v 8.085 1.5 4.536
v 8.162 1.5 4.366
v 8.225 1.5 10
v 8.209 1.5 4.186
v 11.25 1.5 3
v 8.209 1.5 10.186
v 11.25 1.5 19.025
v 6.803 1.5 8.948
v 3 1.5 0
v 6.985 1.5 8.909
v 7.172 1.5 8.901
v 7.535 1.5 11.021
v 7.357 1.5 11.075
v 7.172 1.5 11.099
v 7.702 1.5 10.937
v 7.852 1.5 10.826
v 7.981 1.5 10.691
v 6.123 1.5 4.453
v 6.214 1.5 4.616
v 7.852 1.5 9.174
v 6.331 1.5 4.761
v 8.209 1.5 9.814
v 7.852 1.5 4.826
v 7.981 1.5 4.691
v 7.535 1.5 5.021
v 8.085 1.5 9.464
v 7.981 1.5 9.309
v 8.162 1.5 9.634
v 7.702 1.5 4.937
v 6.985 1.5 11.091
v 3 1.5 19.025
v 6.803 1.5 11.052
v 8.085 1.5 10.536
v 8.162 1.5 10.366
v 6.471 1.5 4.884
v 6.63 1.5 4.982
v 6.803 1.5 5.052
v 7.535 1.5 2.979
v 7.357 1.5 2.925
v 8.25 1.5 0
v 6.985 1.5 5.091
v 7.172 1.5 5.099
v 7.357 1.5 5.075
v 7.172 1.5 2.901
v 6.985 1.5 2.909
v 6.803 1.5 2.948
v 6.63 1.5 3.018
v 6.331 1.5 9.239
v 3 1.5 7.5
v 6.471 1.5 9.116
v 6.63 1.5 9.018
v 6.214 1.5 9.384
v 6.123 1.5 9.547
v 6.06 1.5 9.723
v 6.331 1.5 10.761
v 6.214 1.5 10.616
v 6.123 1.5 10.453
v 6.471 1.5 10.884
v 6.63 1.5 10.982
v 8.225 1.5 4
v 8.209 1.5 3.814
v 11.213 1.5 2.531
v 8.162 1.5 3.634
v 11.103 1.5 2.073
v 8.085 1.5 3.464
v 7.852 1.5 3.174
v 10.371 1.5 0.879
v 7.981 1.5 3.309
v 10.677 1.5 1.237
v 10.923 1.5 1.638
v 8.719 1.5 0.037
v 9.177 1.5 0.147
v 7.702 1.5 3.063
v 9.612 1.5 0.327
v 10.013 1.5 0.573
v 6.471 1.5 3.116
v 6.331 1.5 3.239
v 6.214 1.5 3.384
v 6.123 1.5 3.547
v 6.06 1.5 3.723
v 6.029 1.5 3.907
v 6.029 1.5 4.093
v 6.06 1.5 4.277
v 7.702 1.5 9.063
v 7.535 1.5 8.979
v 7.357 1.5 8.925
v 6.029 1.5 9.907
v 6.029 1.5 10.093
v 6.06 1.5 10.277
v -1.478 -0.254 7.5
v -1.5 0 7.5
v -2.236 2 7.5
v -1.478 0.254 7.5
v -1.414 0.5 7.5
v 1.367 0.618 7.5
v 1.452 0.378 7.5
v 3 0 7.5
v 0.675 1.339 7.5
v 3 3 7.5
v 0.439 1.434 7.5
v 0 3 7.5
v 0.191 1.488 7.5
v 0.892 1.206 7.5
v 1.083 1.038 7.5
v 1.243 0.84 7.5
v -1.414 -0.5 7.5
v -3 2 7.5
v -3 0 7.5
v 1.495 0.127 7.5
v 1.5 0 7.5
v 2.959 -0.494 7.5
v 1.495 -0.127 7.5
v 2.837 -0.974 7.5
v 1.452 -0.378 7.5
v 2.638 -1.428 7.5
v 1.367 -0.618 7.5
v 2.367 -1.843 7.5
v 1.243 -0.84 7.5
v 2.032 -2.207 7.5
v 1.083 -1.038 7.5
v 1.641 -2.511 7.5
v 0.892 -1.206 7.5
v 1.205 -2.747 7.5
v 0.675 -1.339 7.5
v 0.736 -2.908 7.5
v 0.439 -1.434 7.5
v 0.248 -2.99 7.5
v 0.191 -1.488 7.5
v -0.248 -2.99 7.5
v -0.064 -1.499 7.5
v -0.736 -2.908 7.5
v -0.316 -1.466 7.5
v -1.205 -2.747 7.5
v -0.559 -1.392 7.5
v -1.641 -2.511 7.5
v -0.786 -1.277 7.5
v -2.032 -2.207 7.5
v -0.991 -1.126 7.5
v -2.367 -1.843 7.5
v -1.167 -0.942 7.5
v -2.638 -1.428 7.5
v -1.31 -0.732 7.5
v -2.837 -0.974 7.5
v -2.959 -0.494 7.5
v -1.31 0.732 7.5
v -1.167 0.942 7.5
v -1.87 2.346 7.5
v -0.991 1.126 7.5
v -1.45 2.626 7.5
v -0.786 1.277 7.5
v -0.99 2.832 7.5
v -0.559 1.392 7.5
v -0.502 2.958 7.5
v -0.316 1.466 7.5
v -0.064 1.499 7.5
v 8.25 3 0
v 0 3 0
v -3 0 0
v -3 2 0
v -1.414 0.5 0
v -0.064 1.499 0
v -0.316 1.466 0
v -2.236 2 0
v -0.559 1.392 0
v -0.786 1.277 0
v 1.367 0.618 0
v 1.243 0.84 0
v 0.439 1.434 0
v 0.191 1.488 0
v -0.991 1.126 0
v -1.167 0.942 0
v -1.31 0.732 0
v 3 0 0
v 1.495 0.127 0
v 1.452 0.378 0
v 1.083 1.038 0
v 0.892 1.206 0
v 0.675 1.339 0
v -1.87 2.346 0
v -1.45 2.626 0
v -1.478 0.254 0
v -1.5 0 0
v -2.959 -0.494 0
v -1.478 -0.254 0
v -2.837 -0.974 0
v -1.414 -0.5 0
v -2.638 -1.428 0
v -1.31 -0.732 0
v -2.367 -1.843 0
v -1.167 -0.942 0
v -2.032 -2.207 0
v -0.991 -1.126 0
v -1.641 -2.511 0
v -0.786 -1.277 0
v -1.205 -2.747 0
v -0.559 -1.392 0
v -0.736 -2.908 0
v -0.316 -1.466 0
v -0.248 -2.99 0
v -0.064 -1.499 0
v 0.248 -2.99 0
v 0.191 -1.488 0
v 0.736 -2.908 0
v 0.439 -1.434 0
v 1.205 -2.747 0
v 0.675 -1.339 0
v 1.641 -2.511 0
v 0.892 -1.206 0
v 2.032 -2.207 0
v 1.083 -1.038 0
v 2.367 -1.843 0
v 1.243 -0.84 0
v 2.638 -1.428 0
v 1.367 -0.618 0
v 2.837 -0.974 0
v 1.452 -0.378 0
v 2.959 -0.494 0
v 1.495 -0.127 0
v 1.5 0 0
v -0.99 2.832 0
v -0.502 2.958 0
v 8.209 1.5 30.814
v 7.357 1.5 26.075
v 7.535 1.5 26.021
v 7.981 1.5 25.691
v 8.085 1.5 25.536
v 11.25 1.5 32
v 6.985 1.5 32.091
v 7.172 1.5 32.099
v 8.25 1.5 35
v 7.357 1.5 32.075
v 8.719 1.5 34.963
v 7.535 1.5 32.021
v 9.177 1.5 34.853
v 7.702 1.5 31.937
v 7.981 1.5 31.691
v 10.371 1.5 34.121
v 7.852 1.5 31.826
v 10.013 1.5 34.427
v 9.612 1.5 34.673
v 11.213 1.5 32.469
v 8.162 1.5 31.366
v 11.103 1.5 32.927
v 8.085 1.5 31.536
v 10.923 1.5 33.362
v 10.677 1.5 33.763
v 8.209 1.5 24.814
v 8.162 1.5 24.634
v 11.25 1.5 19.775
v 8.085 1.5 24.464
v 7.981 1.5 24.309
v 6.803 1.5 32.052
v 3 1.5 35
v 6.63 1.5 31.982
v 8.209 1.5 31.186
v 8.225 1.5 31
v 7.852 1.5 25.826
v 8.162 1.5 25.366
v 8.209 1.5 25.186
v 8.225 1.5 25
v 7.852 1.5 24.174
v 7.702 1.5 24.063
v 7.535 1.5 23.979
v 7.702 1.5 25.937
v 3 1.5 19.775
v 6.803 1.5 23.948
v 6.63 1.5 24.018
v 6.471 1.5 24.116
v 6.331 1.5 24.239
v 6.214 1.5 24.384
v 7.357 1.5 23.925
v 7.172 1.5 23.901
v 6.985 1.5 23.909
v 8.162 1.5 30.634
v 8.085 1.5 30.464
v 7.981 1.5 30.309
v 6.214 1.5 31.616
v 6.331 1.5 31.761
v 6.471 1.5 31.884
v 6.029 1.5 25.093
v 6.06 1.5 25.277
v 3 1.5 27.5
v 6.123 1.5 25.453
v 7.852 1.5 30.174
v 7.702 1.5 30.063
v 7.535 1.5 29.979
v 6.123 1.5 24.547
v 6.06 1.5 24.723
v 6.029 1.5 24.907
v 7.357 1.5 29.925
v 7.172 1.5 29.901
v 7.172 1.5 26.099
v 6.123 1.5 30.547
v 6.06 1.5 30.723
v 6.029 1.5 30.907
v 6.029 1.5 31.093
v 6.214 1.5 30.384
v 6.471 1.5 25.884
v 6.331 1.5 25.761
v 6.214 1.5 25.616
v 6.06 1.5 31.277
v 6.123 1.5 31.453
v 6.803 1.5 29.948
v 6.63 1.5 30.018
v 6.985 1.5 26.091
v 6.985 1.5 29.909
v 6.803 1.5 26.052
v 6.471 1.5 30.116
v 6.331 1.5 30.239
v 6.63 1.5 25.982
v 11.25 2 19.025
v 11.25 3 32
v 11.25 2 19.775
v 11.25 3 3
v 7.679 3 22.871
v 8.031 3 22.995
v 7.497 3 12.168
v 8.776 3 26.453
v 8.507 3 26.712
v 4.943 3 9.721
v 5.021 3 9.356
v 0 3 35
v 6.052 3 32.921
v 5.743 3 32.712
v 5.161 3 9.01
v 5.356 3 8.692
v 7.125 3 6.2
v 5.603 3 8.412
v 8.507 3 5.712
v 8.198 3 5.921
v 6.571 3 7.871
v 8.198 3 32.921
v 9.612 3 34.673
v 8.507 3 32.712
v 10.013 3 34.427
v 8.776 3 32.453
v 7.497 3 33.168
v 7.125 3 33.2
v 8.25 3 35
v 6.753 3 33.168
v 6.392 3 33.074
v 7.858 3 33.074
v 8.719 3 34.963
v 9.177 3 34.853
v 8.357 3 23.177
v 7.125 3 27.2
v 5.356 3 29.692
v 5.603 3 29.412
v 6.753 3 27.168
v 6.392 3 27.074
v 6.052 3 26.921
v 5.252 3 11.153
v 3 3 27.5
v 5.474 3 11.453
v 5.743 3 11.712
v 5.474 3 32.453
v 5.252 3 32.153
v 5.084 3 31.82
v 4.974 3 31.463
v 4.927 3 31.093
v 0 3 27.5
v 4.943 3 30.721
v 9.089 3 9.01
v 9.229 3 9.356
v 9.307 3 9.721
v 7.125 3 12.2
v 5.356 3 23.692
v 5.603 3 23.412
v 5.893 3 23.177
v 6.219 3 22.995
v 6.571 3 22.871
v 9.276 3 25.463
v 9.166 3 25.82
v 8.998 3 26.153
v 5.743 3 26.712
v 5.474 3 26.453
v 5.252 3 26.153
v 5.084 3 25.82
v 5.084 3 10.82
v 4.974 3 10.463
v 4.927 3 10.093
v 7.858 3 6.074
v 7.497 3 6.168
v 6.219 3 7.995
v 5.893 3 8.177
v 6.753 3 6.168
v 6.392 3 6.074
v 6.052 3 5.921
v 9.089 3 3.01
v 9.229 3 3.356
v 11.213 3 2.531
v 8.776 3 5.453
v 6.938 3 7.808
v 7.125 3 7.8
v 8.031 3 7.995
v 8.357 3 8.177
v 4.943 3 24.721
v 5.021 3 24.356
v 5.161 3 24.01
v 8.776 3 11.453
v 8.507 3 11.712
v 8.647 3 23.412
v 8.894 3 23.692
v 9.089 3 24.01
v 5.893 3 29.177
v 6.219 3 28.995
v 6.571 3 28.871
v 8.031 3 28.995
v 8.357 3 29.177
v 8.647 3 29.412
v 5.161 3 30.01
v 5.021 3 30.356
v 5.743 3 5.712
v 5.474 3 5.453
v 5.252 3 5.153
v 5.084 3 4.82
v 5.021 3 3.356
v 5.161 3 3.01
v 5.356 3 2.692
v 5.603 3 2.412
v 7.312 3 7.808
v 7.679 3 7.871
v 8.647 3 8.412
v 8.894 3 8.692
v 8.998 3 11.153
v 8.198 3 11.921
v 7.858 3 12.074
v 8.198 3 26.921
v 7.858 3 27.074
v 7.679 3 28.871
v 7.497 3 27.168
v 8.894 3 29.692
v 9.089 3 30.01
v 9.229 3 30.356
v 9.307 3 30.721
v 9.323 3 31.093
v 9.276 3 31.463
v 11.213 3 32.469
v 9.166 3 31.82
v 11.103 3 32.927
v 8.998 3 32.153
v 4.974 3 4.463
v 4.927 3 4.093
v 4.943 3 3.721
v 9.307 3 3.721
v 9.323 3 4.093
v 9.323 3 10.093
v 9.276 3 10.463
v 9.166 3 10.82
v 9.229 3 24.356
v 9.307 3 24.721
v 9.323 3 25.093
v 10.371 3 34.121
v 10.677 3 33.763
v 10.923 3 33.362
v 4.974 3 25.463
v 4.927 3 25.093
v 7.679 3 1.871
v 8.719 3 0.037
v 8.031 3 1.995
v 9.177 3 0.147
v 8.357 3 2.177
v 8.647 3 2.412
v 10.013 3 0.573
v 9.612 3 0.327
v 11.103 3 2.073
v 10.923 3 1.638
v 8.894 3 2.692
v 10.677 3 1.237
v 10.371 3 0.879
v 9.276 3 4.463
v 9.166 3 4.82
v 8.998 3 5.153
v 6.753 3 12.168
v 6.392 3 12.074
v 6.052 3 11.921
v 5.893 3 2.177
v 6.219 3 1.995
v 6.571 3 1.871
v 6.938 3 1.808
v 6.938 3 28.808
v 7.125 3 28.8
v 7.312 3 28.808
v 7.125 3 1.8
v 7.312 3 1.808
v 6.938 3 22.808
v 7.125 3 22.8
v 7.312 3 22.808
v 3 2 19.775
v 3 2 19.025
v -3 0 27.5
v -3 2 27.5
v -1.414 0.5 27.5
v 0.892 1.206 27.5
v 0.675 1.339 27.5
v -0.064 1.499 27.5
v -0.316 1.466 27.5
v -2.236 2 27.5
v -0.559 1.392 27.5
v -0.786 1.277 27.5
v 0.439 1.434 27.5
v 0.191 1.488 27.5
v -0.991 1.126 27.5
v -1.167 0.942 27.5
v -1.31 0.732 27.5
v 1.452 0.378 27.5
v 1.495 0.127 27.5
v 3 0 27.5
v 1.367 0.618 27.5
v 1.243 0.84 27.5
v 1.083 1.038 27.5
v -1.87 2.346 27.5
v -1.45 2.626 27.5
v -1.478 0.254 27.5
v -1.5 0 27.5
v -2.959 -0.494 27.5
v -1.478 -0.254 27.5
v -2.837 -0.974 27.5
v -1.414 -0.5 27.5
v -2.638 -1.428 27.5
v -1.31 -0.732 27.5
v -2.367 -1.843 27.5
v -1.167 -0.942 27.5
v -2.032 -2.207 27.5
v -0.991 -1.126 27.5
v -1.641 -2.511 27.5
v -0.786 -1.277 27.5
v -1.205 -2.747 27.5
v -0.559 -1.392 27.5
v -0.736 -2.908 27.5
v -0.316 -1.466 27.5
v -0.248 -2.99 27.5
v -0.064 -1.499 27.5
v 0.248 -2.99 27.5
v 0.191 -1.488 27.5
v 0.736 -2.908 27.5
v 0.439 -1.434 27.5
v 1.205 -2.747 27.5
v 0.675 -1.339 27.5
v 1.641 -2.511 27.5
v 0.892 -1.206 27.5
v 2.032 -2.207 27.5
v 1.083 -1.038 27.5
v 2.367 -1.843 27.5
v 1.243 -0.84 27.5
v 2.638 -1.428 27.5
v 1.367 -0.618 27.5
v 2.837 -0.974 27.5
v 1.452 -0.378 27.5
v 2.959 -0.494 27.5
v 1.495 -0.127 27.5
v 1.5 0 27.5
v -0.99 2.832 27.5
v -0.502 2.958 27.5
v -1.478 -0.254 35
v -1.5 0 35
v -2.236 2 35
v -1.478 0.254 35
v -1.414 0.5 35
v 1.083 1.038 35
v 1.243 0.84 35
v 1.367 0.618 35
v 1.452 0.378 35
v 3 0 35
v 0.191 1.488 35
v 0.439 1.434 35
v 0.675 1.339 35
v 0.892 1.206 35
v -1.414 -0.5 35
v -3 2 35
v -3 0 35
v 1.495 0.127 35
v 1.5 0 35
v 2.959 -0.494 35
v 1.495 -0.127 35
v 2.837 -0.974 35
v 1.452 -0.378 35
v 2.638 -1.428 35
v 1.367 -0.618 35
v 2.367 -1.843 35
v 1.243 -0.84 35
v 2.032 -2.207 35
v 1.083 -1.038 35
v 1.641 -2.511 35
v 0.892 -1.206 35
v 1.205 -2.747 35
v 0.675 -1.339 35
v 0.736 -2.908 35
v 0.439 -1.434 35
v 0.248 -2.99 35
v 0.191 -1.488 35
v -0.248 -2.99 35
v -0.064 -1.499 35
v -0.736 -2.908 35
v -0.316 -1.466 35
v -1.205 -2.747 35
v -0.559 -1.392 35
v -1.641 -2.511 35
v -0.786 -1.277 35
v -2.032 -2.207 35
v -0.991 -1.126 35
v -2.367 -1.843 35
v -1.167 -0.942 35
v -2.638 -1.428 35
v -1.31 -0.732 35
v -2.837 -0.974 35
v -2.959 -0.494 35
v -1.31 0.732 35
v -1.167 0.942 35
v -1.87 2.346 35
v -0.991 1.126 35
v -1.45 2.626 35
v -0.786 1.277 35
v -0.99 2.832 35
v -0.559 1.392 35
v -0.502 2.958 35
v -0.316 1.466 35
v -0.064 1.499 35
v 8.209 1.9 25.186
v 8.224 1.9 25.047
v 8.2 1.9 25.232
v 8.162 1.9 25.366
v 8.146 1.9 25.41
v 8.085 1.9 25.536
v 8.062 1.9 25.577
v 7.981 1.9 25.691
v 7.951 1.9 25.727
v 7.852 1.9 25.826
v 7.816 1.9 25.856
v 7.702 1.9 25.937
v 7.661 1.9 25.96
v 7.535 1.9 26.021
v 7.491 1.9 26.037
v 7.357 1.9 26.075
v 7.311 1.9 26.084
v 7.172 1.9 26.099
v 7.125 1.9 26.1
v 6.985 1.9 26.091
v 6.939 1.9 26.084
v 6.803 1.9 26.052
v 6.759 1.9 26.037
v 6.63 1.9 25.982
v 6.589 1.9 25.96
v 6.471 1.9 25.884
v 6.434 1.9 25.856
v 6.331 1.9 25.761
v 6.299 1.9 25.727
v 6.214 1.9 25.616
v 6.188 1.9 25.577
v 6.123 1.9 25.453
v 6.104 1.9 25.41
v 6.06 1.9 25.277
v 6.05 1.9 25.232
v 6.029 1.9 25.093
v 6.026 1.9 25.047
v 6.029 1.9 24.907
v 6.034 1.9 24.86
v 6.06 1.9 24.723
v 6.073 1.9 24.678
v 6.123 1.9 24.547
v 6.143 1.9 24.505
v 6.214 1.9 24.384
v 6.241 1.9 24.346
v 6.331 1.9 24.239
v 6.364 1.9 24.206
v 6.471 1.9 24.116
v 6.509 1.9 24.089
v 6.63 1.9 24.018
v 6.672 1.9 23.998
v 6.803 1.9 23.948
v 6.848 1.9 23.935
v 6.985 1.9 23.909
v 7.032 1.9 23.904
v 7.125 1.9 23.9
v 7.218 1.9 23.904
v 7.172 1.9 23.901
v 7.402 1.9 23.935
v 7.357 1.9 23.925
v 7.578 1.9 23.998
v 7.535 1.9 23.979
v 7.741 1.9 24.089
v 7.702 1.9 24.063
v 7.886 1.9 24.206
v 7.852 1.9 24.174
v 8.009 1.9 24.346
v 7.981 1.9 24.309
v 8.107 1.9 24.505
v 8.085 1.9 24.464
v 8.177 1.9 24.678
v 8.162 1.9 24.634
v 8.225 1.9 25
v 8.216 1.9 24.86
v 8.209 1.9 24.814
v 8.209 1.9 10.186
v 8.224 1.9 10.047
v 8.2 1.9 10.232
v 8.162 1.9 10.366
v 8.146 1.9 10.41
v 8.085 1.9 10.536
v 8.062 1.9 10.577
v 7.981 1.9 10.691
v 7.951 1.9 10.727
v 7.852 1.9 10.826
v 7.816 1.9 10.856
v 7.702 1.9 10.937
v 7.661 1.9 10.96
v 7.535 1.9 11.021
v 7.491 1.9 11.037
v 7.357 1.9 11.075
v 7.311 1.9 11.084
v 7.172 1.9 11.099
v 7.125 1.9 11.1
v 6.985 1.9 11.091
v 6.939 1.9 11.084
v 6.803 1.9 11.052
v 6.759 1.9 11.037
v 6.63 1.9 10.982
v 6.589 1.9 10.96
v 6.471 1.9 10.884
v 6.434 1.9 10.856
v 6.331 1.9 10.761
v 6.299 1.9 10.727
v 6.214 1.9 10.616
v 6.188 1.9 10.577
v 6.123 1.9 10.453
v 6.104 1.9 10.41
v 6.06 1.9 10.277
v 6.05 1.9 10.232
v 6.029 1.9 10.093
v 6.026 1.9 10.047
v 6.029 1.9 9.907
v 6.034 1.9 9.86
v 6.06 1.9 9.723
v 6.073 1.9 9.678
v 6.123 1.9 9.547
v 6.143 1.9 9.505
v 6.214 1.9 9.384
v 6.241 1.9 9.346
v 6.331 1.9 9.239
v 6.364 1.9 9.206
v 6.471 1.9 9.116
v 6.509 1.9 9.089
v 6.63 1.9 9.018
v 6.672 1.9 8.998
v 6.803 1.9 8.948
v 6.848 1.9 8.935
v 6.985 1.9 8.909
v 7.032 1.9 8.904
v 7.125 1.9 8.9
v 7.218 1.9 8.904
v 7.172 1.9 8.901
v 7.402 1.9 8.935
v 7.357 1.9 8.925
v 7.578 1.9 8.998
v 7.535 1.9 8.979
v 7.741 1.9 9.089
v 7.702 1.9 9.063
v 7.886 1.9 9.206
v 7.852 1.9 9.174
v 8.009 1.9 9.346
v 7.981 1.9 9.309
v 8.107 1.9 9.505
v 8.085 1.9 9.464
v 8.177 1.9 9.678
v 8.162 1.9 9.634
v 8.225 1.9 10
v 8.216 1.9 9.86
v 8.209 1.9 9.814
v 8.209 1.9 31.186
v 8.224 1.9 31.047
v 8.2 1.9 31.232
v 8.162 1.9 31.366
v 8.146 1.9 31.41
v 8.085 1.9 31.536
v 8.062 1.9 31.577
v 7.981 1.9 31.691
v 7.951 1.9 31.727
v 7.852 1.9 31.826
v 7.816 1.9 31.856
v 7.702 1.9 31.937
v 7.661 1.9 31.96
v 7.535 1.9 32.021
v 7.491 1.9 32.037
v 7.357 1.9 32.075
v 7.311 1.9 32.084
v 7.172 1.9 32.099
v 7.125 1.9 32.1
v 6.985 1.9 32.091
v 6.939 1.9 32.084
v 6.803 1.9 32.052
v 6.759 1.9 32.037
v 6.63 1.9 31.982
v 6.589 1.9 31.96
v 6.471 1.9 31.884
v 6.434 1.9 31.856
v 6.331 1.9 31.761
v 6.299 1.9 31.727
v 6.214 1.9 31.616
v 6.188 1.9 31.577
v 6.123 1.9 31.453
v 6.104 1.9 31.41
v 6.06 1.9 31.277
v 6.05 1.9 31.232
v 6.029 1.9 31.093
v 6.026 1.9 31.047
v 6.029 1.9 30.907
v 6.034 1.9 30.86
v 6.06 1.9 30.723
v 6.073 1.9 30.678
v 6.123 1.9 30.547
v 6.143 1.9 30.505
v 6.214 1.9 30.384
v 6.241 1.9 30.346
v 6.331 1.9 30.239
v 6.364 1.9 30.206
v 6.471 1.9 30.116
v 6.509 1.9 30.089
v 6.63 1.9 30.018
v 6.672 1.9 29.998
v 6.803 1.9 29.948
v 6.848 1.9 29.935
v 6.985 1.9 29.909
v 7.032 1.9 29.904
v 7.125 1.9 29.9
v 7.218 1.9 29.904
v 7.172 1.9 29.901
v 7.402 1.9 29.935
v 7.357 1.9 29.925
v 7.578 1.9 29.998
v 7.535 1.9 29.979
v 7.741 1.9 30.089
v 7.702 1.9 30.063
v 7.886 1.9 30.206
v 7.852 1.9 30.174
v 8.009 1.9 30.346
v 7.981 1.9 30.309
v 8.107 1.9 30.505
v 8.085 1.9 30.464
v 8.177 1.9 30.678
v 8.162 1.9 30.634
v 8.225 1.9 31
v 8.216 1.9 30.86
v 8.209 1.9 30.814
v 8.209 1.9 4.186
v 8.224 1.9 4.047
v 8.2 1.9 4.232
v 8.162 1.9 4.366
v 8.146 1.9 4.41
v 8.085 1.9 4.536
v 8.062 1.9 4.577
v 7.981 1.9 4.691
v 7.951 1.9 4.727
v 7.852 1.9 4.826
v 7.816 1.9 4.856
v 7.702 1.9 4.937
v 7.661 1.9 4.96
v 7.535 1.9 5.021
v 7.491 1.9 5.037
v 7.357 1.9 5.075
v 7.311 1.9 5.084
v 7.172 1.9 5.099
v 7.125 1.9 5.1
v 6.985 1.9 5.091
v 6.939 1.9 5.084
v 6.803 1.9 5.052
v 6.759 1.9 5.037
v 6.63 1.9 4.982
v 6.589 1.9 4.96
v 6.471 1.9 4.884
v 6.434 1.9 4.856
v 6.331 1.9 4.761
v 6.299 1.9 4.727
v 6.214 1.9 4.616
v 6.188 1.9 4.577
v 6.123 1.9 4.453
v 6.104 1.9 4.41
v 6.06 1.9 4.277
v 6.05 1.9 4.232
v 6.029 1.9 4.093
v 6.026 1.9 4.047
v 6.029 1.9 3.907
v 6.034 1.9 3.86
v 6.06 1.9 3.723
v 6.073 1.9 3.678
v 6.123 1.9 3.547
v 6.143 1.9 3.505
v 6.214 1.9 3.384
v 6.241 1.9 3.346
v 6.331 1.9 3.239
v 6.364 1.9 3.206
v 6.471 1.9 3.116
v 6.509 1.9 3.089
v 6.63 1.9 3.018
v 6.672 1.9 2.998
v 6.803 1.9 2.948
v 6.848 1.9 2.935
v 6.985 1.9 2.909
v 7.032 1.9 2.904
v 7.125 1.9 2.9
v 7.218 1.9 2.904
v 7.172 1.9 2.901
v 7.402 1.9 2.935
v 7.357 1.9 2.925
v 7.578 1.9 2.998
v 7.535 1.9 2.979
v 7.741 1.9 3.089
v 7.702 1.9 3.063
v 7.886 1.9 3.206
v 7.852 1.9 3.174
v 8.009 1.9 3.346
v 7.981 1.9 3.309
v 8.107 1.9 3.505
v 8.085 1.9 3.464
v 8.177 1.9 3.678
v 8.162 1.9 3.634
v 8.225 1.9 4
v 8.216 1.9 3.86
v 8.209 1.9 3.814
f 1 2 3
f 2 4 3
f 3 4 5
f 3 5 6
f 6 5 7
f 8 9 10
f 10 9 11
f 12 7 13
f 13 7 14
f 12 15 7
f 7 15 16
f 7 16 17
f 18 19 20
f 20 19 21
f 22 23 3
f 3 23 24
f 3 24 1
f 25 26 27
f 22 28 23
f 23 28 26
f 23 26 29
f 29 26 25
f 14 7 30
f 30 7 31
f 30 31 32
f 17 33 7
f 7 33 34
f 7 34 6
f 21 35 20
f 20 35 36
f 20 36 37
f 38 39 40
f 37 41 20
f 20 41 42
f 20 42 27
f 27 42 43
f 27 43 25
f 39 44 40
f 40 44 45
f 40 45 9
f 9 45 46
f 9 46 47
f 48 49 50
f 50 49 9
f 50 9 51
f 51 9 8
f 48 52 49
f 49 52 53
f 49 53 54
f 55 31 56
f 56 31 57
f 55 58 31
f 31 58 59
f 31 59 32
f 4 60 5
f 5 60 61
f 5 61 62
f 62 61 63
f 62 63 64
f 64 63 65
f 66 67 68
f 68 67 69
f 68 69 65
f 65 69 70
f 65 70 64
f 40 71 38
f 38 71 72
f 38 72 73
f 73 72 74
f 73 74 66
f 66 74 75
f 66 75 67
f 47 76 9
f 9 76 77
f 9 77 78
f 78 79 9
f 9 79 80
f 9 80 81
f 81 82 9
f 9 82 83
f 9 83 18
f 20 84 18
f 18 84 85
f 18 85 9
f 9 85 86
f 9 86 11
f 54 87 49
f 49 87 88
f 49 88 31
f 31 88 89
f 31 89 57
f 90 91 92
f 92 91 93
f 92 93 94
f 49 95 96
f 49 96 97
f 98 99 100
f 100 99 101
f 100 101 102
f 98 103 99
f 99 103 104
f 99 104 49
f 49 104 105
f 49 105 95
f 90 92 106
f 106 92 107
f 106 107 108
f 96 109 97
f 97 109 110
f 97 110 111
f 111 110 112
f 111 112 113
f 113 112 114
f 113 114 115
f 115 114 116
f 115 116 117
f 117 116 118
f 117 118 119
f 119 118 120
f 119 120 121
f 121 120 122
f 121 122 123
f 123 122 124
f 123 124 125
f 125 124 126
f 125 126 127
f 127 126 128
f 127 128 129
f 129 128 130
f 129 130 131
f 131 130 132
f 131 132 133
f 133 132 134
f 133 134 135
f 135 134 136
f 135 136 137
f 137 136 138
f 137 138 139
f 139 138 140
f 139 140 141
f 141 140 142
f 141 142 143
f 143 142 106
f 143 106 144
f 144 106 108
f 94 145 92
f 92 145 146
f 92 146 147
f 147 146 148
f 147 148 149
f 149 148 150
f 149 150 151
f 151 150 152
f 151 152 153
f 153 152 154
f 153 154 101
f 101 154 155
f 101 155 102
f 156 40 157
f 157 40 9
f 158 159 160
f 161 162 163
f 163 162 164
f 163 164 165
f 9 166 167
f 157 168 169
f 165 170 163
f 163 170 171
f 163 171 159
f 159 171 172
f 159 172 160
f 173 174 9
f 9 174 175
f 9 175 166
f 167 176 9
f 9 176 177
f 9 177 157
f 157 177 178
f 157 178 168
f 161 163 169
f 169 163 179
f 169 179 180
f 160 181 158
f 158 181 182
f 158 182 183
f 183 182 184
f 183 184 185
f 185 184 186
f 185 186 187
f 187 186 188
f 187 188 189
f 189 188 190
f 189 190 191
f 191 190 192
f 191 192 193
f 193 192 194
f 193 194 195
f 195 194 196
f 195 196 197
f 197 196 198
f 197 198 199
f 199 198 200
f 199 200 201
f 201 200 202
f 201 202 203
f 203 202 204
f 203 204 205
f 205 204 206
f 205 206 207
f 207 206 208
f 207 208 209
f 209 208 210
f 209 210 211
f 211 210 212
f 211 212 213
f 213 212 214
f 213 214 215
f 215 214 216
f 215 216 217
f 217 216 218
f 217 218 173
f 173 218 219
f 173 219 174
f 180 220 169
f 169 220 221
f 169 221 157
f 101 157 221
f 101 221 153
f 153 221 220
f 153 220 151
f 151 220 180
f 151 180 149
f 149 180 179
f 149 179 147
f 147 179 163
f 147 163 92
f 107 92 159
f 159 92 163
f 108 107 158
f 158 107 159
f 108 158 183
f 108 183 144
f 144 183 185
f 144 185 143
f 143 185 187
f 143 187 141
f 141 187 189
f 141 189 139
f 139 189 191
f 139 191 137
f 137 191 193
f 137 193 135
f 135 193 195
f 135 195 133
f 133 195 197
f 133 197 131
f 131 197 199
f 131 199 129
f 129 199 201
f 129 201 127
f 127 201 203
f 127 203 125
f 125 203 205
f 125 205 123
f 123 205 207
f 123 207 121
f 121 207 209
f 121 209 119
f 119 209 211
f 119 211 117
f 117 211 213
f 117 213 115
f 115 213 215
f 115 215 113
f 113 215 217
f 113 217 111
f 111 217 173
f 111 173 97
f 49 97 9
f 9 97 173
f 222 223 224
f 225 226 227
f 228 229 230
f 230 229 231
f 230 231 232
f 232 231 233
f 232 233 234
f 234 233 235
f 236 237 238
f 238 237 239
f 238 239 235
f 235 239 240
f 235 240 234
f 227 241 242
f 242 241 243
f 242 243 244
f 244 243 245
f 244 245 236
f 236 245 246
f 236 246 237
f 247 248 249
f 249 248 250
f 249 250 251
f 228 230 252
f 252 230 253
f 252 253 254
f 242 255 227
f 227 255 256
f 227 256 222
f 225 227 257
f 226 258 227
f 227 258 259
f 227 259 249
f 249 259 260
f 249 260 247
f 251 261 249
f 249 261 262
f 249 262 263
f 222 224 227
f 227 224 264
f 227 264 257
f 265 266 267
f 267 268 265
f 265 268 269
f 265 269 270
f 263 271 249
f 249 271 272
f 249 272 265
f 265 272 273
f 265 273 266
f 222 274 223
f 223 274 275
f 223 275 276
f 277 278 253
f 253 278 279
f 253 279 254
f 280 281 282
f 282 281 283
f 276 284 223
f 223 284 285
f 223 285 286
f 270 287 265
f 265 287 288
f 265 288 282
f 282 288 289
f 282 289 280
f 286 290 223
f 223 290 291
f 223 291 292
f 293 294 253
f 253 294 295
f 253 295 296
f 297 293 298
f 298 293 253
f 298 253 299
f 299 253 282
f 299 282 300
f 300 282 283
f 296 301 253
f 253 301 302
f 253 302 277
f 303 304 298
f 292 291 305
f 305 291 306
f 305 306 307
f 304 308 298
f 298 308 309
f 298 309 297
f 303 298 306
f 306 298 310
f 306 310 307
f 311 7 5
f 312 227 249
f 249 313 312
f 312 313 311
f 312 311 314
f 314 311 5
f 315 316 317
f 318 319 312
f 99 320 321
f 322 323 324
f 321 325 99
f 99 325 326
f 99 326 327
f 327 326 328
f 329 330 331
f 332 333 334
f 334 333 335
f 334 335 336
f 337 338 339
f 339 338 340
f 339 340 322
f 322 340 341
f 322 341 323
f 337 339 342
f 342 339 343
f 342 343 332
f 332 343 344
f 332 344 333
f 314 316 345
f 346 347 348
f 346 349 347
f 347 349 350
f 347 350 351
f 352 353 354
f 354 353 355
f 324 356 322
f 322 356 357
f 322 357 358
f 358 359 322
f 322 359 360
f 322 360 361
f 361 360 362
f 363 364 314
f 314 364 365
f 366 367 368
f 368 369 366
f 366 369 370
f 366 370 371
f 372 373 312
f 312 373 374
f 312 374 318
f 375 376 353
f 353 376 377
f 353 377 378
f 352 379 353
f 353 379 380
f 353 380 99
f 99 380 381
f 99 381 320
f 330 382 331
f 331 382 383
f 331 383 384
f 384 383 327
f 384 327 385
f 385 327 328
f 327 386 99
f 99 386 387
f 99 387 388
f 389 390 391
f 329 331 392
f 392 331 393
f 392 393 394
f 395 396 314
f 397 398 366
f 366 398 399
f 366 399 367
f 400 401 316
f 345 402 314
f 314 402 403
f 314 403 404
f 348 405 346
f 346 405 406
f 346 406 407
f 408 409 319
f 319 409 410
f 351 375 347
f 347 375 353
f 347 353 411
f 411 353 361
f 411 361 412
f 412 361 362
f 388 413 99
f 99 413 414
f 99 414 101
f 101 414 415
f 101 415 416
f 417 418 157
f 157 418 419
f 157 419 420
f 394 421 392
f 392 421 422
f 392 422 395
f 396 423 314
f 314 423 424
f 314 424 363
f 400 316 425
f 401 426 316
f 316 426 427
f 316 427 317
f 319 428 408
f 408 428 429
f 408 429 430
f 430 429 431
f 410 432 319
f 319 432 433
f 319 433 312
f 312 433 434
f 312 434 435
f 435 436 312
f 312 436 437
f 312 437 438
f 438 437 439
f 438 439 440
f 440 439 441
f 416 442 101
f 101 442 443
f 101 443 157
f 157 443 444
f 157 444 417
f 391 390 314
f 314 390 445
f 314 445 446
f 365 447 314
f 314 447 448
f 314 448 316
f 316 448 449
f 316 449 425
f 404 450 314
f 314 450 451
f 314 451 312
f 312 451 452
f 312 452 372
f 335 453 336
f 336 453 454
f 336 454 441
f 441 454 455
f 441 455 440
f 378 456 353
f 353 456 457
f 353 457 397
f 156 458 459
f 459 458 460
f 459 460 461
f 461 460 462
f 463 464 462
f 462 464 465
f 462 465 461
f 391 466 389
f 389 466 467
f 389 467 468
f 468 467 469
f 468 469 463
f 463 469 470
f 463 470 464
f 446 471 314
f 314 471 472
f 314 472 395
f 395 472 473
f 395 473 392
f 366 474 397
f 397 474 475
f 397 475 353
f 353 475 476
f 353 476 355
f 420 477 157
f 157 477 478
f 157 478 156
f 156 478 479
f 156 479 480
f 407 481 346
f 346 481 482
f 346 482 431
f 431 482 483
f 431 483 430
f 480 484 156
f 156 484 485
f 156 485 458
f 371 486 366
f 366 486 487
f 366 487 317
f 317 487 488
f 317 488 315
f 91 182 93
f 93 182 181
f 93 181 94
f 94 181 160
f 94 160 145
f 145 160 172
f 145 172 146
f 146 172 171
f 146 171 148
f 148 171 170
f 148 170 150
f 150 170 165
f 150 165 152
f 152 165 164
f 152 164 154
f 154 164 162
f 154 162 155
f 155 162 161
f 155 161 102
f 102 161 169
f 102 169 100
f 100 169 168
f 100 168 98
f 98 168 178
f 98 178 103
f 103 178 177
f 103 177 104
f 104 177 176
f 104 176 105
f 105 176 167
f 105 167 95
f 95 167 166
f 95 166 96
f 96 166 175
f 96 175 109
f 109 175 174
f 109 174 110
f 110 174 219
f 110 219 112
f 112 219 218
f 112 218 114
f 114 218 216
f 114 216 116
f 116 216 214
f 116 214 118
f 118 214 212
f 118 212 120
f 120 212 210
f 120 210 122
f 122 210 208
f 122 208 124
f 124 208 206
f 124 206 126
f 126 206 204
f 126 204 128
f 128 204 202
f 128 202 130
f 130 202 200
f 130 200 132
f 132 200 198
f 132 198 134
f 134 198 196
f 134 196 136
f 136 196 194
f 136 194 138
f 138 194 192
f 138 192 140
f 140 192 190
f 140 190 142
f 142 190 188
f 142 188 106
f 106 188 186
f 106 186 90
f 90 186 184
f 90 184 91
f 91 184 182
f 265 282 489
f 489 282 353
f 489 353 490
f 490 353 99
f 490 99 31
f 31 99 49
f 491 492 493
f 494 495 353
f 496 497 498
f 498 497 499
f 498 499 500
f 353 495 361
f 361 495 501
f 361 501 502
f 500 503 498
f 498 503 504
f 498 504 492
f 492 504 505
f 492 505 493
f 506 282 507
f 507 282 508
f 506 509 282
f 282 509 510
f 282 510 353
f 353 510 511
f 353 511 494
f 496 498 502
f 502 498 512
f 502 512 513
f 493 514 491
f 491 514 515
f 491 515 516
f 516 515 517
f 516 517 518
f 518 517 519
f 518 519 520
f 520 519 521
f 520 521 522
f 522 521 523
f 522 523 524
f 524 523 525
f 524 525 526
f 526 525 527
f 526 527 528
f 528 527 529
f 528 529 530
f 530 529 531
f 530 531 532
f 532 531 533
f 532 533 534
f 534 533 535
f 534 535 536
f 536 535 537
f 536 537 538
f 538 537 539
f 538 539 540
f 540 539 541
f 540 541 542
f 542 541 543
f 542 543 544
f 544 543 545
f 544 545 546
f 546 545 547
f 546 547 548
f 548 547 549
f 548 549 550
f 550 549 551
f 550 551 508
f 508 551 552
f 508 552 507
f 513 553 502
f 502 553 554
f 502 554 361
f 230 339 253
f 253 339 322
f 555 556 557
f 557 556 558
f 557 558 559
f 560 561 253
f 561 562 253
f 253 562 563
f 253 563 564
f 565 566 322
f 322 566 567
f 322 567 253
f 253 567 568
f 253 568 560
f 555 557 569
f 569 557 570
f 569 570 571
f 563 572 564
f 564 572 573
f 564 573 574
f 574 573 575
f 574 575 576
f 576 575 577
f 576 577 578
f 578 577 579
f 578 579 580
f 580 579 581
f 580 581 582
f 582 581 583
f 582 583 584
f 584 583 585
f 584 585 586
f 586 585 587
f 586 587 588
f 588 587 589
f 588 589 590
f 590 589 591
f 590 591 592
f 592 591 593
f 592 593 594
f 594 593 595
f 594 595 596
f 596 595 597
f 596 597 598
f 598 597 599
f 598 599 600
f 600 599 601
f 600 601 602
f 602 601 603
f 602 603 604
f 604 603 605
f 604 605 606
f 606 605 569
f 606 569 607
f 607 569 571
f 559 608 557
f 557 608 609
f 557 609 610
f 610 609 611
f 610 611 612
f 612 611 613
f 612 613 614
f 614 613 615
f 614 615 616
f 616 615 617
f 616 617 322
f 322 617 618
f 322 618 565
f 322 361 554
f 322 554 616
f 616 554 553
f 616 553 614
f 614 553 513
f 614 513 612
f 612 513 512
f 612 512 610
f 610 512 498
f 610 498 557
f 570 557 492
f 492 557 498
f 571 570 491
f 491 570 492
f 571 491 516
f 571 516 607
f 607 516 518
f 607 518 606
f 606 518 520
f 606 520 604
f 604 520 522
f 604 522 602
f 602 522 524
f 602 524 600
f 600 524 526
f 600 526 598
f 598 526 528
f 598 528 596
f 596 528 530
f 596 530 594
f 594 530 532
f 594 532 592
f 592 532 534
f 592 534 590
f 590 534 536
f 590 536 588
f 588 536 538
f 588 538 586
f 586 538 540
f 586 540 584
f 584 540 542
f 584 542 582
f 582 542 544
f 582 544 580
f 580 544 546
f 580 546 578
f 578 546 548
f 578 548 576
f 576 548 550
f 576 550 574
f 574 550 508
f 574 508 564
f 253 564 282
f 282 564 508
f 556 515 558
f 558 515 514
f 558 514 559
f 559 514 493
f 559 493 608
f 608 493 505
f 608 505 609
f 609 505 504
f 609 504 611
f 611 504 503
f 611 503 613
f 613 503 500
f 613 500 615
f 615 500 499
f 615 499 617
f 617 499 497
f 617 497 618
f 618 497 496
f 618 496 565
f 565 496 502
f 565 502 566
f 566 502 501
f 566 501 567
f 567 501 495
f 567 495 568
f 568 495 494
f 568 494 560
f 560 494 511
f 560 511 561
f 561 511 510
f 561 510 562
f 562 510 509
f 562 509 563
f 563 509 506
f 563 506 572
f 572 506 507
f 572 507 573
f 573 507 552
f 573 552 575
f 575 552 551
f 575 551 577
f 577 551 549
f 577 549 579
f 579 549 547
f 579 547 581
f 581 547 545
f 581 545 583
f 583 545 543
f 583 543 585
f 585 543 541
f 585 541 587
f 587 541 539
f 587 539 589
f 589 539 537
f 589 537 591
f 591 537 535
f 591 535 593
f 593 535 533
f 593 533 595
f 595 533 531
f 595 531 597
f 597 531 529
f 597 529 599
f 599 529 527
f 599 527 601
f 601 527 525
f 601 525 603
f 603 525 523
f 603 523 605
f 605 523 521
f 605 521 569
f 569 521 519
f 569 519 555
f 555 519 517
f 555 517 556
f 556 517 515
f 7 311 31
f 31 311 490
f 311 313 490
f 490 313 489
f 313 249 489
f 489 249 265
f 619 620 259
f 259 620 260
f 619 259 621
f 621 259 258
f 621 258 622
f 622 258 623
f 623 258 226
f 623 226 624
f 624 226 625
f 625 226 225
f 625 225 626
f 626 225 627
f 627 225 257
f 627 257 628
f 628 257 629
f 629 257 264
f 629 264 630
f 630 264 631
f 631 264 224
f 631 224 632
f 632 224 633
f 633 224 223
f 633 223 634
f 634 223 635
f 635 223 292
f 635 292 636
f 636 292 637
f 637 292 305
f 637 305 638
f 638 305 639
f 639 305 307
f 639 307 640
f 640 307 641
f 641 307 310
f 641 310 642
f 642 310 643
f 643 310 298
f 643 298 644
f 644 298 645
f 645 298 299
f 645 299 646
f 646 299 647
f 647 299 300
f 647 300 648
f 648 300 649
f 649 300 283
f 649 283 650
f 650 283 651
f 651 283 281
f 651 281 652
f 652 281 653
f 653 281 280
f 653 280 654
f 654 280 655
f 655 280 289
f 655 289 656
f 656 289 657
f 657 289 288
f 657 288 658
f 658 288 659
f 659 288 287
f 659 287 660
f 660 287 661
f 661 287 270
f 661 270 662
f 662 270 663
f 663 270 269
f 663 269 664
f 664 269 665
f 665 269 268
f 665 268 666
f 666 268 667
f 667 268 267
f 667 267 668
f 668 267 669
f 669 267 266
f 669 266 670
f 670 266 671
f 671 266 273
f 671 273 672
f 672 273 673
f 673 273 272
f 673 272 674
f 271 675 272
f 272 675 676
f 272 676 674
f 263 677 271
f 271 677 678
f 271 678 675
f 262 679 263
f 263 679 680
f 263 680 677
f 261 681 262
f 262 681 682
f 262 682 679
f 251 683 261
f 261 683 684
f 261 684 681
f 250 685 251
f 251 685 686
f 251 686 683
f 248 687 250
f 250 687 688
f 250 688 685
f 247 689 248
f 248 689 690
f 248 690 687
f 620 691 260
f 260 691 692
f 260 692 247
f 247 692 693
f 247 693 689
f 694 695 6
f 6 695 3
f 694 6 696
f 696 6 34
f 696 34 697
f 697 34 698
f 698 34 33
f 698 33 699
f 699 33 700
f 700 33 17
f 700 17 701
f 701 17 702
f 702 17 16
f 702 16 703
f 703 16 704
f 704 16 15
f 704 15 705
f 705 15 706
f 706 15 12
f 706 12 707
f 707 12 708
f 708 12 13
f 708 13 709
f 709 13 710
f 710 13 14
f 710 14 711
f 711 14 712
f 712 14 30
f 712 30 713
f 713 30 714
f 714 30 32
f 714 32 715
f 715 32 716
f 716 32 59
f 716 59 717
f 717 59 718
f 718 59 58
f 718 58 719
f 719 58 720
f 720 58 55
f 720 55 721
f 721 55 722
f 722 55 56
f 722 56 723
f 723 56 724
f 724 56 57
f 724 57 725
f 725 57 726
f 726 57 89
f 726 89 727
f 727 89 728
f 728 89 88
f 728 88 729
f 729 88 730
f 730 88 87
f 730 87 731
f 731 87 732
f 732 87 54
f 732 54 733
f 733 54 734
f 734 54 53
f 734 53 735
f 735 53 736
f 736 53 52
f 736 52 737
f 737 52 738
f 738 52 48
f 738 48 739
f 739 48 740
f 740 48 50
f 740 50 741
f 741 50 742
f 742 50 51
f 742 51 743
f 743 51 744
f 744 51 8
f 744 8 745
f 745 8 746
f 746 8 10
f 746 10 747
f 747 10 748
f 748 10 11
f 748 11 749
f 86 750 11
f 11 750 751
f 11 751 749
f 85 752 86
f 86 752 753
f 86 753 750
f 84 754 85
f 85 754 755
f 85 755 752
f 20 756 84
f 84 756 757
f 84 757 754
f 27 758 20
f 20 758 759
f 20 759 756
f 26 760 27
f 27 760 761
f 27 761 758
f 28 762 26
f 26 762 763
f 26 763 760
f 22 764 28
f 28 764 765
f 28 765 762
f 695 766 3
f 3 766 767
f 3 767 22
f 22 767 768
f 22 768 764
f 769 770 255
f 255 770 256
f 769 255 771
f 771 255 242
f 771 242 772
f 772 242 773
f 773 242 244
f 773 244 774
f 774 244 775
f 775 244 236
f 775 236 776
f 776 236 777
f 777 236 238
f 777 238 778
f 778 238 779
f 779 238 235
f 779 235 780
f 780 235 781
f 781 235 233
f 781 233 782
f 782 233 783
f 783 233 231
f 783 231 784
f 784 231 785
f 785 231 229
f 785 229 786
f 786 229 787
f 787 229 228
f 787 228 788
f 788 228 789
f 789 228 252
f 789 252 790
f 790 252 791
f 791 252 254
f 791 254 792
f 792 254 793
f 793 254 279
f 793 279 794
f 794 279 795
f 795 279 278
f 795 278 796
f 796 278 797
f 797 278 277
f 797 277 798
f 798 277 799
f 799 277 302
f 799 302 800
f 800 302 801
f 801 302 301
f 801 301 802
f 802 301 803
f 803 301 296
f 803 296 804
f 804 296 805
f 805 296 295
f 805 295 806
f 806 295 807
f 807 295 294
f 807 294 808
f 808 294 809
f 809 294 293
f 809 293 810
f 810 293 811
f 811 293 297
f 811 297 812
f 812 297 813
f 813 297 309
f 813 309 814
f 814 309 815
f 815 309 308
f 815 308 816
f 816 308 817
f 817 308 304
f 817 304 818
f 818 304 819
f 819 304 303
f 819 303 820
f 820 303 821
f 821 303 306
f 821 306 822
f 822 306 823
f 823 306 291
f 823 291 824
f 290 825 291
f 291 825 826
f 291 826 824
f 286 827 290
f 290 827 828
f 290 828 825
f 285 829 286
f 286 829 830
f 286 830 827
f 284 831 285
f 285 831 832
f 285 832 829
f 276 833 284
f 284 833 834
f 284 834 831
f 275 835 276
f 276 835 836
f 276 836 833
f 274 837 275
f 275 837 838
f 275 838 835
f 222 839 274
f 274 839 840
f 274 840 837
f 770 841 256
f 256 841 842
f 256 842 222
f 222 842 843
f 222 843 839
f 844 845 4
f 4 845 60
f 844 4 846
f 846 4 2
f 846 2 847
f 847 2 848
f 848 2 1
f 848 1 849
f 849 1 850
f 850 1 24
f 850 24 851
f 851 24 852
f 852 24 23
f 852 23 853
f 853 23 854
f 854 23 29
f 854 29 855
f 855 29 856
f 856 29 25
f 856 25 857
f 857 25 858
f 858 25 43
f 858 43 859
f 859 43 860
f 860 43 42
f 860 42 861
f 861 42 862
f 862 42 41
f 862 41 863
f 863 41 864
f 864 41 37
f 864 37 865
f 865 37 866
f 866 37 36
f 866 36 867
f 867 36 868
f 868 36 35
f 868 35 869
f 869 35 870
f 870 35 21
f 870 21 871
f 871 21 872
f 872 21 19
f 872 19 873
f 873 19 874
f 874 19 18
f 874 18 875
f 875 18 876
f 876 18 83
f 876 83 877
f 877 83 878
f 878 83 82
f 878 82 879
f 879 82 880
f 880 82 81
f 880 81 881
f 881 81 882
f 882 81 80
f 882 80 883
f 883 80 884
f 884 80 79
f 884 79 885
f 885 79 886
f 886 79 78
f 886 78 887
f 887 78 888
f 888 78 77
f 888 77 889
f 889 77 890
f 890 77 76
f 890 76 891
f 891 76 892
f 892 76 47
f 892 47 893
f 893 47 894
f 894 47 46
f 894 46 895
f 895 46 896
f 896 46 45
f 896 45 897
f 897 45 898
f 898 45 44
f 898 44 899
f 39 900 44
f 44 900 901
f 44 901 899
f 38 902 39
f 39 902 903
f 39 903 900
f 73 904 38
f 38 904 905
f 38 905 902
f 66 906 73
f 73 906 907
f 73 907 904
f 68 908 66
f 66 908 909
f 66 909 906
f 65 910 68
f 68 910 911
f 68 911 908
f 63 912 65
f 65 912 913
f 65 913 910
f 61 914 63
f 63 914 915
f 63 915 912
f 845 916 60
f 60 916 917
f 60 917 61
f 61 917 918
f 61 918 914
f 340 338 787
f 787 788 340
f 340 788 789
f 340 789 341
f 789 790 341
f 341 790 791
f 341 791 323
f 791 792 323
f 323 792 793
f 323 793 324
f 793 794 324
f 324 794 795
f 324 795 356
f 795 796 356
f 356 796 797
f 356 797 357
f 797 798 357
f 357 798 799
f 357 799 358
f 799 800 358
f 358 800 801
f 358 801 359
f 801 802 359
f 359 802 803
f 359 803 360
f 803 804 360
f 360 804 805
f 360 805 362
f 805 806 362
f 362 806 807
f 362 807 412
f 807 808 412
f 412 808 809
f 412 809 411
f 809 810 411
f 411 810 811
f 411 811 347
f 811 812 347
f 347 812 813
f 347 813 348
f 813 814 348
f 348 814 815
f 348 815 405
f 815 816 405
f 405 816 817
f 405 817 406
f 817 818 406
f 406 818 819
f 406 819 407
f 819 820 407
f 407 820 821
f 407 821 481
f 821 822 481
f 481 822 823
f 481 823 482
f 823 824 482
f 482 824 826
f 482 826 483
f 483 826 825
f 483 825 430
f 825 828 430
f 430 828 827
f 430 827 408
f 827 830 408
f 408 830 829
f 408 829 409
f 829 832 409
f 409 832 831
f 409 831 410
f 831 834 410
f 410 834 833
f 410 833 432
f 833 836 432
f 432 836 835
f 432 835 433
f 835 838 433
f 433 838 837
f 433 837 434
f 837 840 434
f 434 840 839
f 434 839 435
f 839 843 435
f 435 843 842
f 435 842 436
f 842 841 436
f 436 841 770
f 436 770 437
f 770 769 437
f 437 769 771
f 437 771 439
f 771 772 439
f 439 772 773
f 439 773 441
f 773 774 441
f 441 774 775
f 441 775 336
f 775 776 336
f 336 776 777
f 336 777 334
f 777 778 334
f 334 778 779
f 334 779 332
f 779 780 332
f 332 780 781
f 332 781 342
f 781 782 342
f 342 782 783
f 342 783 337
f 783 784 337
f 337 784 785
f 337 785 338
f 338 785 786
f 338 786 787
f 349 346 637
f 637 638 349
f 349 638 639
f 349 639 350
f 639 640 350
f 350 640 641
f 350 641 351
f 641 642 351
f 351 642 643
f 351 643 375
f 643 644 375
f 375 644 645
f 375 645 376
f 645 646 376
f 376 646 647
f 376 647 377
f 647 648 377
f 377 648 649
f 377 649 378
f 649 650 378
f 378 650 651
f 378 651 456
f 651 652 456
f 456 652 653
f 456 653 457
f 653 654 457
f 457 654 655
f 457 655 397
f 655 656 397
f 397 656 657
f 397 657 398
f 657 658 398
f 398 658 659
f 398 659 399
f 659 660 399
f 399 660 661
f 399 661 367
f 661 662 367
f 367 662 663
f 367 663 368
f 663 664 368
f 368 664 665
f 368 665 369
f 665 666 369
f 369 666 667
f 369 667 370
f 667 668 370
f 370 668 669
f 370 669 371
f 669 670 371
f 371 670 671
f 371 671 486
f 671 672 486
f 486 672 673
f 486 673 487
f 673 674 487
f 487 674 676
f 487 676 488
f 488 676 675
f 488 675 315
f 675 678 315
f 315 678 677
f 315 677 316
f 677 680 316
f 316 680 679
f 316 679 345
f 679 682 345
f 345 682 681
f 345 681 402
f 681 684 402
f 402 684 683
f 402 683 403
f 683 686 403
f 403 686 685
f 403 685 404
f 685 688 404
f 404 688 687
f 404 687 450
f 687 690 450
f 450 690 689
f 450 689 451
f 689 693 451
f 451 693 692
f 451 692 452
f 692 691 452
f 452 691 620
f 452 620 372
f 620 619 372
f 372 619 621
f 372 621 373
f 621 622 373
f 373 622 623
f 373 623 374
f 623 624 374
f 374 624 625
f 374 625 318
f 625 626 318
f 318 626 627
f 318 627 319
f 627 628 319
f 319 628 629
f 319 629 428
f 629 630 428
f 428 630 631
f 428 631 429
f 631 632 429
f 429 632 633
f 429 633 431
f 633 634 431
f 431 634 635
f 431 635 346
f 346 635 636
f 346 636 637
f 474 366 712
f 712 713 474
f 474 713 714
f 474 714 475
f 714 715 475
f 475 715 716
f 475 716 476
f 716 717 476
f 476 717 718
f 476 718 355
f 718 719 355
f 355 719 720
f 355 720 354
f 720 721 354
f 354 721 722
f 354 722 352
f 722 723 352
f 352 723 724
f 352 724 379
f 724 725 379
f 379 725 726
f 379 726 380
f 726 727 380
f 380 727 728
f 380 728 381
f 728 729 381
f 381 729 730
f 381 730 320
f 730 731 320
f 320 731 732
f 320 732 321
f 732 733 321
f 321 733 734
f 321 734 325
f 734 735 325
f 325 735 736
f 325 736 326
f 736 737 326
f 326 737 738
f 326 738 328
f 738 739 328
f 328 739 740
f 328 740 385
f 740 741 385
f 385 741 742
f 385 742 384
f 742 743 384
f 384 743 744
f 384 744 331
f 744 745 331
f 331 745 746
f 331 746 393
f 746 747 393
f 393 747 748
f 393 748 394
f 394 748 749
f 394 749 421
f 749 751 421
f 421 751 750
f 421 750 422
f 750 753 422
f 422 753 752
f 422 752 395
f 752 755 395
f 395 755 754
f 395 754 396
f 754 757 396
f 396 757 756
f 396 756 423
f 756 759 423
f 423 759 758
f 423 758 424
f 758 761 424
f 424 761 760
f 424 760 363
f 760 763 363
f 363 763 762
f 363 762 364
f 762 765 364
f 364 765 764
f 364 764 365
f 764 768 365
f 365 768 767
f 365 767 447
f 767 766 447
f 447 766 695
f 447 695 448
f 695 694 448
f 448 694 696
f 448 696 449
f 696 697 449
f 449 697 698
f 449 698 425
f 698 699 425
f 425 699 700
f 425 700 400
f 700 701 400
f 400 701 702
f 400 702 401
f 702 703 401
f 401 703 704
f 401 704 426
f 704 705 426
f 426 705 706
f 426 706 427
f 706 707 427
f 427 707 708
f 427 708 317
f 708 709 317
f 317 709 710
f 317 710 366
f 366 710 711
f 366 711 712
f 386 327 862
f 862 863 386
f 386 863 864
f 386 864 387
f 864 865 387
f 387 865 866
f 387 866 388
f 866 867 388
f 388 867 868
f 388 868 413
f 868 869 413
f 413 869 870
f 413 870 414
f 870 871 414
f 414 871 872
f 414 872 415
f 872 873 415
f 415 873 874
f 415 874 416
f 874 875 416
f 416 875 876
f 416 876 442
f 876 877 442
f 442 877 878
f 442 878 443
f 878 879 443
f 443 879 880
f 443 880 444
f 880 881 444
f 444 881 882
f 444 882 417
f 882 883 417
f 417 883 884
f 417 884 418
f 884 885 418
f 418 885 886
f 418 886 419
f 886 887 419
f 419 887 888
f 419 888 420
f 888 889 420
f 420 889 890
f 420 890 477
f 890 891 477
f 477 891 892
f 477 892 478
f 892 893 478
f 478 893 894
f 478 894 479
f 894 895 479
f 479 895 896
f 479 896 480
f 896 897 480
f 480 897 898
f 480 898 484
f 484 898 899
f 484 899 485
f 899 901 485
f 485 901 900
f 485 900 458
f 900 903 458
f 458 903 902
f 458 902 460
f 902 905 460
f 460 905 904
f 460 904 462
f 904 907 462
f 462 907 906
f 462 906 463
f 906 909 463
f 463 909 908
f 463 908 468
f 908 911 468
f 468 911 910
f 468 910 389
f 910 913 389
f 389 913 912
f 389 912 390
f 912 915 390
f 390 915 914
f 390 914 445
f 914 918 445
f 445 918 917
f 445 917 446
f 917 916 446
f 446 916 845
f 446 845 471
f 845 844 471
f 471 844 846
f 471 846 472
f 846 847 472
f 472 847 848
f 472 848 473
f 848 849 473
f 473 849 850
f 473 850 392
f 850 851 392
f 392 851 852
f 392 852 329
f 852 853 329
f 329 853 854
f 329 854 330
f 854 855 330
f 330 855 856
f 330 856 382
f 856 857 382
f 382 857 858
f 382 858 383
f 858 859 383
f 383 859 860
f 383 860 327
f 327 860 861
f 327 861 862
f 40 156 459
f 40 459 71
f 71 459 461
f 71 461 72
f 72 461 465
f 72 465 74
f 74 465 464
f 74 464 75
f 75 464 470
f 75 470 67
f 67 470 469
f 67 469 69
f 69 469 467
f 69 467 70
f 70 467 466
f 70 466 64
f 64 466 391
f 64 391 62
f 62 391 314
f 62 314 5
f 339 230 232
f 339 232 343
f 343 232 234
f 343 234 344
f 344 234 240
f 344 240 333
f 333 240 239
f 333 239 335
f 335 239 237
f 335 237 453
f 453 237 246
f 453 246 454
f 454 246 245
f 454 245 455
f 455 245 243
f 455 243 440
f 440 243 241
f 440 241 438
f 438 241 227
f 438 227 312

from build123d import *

# Parameters (mm, degrees)
SKETCH2_R           = 1.5
BOSS_EXTRUDE1_DEPTH = 7.5
SKETCH4_W           = 8.25
SKETCH4_H           = 1.5
BOSS_EXTRUDE3_DEPTH = 20
SKETCH5_R           = 1.5
BOSS_EXTRUDE4_DEPTH = 7.5
SKETCH6_W           = 0.75
SKETCH6_H           = 0.5
CUT_EXTRUDE1_DEPTH  = 9.25
SKETCH7_R           = 1.1
CUT_EXTRUDE2_DEPTH  = 2.5
CHAMFER1_SIZE       = 1.1
FILLET1_R           = 3


with BuildPart() as part:
    # Sketch2 → Boss-Extrude1 (new body)
    with BuildSketch(Plane.XY):
        with BuildLine():
            Line((3, 3), (11.25, 3))
            Line((11.25, 3), (11.25, 1.5))
            Line((11.25, 1.5), (3, 1.5))
            Line((3, 1.5), (3, 0))
            ThreePointArc((3, 0), (0, -3), (-3, 0))
            Line((-3, 0), (-3, 2))
            Line((-3, 2), (-2.236067977, 2))
            ThreePointArc((-2.236067977, 2), (-1.224744871, 2.738612788), (0, 3))
            Line((0, 3), (3, 3))
        make_face()
        Circle(SKETCH2_R, mode=Mode.SUBTRACT)
    extrude(amount=BOSS_EXTRUDE1_DEPTH)

    # Sketch4 → Boss-Extrude3 (add)
    with BuildSketch(Plane.XY.offset(7.5)):
        with Locations((7.125, 2.25)):
            Rectangle(SKETCH4_W, SKETCH4_H)
    extrude(amount=BOSS_EXTRUDE3_DEPTH)

    # Sketch5 → Boss-Extrude4 (add)
    with BuildSketch(Plane.XY.offset(27.5)):
        with BuildLine():
            Line((11.25, 1.5), (11.25, 3))
            Line((11.25, 3), (3, 3))
            Line((3, 3), (0, 3))
            ThreePointArc((0, 3), (-1.224744871, 2.738612788), (-2.236067977, 2))
            Line((-2.236067977, 2), (-3, 2))
            Line((-3, 2), (-3, 0))
            ThreePointArc((-3, 0), (0, -3), (3, 0))
            Line((3, 0), (3, 1.5))
            Line((3, 1.5), (11.25, 1.5))
        make_face()
        Circle(SKETCH5_R, mode=Mode.SUBTRACT)
    extrude(amount=BOSS_EXTRUDE4_DEPTH)

    # Sketch6 → Cut-Extrude1 (cut, through all)
    with BuildSketch(Plane.ZY.offset(-3)):
        with Locations((19.4, 1.75)):
            Rectangle(SKETCH6_W, SKETCH6_H)
    extrude(amount=-CUT_EXTRUDE1_DEPTH, mode=Mode.SUBTRACT)

    # Sketch7 → Cut-Extrude2 (cut, through all)
    with BuildSketch(Plane.XZ.offset(-1.5)):
        with Locations((7.125, 25)):
            Circle(SKETCH7_R)
        with Locations((7.125, 10)):
            Circle(SKETCH7_R)
        with Locations((7.125, 31)):
            Circle(SKETCH7_R)
        with Locations((7.125, 4)):
            Circle(SKETCH7_R)
    extrude(amount=-CUT_EXTRUDE2_DEPTH, mode=Mode.SUBTRACT)

    # Chamfer1
    chamfer1_edges = [part.edges().sort_by_distance(p)[0] for p in [
        (6.025, 3, 4),
        (6.025, 3, 31),
        (6.025, 3, 10),
        (6.025, 3, 25),
    ]]
    chamfer(chamfer1_edges, length=CHAMFER1_SIZE)

    # Fillet1
    fillet1_edges = [part.edges().sort_by_distance(p)[0] for p in [
        (11.25, 2.25, 35),
        (11.25, 2.25, 0),
    ]]
    fillet(fillet1_edges, radius=FILLET1_R)


solid = part.part
